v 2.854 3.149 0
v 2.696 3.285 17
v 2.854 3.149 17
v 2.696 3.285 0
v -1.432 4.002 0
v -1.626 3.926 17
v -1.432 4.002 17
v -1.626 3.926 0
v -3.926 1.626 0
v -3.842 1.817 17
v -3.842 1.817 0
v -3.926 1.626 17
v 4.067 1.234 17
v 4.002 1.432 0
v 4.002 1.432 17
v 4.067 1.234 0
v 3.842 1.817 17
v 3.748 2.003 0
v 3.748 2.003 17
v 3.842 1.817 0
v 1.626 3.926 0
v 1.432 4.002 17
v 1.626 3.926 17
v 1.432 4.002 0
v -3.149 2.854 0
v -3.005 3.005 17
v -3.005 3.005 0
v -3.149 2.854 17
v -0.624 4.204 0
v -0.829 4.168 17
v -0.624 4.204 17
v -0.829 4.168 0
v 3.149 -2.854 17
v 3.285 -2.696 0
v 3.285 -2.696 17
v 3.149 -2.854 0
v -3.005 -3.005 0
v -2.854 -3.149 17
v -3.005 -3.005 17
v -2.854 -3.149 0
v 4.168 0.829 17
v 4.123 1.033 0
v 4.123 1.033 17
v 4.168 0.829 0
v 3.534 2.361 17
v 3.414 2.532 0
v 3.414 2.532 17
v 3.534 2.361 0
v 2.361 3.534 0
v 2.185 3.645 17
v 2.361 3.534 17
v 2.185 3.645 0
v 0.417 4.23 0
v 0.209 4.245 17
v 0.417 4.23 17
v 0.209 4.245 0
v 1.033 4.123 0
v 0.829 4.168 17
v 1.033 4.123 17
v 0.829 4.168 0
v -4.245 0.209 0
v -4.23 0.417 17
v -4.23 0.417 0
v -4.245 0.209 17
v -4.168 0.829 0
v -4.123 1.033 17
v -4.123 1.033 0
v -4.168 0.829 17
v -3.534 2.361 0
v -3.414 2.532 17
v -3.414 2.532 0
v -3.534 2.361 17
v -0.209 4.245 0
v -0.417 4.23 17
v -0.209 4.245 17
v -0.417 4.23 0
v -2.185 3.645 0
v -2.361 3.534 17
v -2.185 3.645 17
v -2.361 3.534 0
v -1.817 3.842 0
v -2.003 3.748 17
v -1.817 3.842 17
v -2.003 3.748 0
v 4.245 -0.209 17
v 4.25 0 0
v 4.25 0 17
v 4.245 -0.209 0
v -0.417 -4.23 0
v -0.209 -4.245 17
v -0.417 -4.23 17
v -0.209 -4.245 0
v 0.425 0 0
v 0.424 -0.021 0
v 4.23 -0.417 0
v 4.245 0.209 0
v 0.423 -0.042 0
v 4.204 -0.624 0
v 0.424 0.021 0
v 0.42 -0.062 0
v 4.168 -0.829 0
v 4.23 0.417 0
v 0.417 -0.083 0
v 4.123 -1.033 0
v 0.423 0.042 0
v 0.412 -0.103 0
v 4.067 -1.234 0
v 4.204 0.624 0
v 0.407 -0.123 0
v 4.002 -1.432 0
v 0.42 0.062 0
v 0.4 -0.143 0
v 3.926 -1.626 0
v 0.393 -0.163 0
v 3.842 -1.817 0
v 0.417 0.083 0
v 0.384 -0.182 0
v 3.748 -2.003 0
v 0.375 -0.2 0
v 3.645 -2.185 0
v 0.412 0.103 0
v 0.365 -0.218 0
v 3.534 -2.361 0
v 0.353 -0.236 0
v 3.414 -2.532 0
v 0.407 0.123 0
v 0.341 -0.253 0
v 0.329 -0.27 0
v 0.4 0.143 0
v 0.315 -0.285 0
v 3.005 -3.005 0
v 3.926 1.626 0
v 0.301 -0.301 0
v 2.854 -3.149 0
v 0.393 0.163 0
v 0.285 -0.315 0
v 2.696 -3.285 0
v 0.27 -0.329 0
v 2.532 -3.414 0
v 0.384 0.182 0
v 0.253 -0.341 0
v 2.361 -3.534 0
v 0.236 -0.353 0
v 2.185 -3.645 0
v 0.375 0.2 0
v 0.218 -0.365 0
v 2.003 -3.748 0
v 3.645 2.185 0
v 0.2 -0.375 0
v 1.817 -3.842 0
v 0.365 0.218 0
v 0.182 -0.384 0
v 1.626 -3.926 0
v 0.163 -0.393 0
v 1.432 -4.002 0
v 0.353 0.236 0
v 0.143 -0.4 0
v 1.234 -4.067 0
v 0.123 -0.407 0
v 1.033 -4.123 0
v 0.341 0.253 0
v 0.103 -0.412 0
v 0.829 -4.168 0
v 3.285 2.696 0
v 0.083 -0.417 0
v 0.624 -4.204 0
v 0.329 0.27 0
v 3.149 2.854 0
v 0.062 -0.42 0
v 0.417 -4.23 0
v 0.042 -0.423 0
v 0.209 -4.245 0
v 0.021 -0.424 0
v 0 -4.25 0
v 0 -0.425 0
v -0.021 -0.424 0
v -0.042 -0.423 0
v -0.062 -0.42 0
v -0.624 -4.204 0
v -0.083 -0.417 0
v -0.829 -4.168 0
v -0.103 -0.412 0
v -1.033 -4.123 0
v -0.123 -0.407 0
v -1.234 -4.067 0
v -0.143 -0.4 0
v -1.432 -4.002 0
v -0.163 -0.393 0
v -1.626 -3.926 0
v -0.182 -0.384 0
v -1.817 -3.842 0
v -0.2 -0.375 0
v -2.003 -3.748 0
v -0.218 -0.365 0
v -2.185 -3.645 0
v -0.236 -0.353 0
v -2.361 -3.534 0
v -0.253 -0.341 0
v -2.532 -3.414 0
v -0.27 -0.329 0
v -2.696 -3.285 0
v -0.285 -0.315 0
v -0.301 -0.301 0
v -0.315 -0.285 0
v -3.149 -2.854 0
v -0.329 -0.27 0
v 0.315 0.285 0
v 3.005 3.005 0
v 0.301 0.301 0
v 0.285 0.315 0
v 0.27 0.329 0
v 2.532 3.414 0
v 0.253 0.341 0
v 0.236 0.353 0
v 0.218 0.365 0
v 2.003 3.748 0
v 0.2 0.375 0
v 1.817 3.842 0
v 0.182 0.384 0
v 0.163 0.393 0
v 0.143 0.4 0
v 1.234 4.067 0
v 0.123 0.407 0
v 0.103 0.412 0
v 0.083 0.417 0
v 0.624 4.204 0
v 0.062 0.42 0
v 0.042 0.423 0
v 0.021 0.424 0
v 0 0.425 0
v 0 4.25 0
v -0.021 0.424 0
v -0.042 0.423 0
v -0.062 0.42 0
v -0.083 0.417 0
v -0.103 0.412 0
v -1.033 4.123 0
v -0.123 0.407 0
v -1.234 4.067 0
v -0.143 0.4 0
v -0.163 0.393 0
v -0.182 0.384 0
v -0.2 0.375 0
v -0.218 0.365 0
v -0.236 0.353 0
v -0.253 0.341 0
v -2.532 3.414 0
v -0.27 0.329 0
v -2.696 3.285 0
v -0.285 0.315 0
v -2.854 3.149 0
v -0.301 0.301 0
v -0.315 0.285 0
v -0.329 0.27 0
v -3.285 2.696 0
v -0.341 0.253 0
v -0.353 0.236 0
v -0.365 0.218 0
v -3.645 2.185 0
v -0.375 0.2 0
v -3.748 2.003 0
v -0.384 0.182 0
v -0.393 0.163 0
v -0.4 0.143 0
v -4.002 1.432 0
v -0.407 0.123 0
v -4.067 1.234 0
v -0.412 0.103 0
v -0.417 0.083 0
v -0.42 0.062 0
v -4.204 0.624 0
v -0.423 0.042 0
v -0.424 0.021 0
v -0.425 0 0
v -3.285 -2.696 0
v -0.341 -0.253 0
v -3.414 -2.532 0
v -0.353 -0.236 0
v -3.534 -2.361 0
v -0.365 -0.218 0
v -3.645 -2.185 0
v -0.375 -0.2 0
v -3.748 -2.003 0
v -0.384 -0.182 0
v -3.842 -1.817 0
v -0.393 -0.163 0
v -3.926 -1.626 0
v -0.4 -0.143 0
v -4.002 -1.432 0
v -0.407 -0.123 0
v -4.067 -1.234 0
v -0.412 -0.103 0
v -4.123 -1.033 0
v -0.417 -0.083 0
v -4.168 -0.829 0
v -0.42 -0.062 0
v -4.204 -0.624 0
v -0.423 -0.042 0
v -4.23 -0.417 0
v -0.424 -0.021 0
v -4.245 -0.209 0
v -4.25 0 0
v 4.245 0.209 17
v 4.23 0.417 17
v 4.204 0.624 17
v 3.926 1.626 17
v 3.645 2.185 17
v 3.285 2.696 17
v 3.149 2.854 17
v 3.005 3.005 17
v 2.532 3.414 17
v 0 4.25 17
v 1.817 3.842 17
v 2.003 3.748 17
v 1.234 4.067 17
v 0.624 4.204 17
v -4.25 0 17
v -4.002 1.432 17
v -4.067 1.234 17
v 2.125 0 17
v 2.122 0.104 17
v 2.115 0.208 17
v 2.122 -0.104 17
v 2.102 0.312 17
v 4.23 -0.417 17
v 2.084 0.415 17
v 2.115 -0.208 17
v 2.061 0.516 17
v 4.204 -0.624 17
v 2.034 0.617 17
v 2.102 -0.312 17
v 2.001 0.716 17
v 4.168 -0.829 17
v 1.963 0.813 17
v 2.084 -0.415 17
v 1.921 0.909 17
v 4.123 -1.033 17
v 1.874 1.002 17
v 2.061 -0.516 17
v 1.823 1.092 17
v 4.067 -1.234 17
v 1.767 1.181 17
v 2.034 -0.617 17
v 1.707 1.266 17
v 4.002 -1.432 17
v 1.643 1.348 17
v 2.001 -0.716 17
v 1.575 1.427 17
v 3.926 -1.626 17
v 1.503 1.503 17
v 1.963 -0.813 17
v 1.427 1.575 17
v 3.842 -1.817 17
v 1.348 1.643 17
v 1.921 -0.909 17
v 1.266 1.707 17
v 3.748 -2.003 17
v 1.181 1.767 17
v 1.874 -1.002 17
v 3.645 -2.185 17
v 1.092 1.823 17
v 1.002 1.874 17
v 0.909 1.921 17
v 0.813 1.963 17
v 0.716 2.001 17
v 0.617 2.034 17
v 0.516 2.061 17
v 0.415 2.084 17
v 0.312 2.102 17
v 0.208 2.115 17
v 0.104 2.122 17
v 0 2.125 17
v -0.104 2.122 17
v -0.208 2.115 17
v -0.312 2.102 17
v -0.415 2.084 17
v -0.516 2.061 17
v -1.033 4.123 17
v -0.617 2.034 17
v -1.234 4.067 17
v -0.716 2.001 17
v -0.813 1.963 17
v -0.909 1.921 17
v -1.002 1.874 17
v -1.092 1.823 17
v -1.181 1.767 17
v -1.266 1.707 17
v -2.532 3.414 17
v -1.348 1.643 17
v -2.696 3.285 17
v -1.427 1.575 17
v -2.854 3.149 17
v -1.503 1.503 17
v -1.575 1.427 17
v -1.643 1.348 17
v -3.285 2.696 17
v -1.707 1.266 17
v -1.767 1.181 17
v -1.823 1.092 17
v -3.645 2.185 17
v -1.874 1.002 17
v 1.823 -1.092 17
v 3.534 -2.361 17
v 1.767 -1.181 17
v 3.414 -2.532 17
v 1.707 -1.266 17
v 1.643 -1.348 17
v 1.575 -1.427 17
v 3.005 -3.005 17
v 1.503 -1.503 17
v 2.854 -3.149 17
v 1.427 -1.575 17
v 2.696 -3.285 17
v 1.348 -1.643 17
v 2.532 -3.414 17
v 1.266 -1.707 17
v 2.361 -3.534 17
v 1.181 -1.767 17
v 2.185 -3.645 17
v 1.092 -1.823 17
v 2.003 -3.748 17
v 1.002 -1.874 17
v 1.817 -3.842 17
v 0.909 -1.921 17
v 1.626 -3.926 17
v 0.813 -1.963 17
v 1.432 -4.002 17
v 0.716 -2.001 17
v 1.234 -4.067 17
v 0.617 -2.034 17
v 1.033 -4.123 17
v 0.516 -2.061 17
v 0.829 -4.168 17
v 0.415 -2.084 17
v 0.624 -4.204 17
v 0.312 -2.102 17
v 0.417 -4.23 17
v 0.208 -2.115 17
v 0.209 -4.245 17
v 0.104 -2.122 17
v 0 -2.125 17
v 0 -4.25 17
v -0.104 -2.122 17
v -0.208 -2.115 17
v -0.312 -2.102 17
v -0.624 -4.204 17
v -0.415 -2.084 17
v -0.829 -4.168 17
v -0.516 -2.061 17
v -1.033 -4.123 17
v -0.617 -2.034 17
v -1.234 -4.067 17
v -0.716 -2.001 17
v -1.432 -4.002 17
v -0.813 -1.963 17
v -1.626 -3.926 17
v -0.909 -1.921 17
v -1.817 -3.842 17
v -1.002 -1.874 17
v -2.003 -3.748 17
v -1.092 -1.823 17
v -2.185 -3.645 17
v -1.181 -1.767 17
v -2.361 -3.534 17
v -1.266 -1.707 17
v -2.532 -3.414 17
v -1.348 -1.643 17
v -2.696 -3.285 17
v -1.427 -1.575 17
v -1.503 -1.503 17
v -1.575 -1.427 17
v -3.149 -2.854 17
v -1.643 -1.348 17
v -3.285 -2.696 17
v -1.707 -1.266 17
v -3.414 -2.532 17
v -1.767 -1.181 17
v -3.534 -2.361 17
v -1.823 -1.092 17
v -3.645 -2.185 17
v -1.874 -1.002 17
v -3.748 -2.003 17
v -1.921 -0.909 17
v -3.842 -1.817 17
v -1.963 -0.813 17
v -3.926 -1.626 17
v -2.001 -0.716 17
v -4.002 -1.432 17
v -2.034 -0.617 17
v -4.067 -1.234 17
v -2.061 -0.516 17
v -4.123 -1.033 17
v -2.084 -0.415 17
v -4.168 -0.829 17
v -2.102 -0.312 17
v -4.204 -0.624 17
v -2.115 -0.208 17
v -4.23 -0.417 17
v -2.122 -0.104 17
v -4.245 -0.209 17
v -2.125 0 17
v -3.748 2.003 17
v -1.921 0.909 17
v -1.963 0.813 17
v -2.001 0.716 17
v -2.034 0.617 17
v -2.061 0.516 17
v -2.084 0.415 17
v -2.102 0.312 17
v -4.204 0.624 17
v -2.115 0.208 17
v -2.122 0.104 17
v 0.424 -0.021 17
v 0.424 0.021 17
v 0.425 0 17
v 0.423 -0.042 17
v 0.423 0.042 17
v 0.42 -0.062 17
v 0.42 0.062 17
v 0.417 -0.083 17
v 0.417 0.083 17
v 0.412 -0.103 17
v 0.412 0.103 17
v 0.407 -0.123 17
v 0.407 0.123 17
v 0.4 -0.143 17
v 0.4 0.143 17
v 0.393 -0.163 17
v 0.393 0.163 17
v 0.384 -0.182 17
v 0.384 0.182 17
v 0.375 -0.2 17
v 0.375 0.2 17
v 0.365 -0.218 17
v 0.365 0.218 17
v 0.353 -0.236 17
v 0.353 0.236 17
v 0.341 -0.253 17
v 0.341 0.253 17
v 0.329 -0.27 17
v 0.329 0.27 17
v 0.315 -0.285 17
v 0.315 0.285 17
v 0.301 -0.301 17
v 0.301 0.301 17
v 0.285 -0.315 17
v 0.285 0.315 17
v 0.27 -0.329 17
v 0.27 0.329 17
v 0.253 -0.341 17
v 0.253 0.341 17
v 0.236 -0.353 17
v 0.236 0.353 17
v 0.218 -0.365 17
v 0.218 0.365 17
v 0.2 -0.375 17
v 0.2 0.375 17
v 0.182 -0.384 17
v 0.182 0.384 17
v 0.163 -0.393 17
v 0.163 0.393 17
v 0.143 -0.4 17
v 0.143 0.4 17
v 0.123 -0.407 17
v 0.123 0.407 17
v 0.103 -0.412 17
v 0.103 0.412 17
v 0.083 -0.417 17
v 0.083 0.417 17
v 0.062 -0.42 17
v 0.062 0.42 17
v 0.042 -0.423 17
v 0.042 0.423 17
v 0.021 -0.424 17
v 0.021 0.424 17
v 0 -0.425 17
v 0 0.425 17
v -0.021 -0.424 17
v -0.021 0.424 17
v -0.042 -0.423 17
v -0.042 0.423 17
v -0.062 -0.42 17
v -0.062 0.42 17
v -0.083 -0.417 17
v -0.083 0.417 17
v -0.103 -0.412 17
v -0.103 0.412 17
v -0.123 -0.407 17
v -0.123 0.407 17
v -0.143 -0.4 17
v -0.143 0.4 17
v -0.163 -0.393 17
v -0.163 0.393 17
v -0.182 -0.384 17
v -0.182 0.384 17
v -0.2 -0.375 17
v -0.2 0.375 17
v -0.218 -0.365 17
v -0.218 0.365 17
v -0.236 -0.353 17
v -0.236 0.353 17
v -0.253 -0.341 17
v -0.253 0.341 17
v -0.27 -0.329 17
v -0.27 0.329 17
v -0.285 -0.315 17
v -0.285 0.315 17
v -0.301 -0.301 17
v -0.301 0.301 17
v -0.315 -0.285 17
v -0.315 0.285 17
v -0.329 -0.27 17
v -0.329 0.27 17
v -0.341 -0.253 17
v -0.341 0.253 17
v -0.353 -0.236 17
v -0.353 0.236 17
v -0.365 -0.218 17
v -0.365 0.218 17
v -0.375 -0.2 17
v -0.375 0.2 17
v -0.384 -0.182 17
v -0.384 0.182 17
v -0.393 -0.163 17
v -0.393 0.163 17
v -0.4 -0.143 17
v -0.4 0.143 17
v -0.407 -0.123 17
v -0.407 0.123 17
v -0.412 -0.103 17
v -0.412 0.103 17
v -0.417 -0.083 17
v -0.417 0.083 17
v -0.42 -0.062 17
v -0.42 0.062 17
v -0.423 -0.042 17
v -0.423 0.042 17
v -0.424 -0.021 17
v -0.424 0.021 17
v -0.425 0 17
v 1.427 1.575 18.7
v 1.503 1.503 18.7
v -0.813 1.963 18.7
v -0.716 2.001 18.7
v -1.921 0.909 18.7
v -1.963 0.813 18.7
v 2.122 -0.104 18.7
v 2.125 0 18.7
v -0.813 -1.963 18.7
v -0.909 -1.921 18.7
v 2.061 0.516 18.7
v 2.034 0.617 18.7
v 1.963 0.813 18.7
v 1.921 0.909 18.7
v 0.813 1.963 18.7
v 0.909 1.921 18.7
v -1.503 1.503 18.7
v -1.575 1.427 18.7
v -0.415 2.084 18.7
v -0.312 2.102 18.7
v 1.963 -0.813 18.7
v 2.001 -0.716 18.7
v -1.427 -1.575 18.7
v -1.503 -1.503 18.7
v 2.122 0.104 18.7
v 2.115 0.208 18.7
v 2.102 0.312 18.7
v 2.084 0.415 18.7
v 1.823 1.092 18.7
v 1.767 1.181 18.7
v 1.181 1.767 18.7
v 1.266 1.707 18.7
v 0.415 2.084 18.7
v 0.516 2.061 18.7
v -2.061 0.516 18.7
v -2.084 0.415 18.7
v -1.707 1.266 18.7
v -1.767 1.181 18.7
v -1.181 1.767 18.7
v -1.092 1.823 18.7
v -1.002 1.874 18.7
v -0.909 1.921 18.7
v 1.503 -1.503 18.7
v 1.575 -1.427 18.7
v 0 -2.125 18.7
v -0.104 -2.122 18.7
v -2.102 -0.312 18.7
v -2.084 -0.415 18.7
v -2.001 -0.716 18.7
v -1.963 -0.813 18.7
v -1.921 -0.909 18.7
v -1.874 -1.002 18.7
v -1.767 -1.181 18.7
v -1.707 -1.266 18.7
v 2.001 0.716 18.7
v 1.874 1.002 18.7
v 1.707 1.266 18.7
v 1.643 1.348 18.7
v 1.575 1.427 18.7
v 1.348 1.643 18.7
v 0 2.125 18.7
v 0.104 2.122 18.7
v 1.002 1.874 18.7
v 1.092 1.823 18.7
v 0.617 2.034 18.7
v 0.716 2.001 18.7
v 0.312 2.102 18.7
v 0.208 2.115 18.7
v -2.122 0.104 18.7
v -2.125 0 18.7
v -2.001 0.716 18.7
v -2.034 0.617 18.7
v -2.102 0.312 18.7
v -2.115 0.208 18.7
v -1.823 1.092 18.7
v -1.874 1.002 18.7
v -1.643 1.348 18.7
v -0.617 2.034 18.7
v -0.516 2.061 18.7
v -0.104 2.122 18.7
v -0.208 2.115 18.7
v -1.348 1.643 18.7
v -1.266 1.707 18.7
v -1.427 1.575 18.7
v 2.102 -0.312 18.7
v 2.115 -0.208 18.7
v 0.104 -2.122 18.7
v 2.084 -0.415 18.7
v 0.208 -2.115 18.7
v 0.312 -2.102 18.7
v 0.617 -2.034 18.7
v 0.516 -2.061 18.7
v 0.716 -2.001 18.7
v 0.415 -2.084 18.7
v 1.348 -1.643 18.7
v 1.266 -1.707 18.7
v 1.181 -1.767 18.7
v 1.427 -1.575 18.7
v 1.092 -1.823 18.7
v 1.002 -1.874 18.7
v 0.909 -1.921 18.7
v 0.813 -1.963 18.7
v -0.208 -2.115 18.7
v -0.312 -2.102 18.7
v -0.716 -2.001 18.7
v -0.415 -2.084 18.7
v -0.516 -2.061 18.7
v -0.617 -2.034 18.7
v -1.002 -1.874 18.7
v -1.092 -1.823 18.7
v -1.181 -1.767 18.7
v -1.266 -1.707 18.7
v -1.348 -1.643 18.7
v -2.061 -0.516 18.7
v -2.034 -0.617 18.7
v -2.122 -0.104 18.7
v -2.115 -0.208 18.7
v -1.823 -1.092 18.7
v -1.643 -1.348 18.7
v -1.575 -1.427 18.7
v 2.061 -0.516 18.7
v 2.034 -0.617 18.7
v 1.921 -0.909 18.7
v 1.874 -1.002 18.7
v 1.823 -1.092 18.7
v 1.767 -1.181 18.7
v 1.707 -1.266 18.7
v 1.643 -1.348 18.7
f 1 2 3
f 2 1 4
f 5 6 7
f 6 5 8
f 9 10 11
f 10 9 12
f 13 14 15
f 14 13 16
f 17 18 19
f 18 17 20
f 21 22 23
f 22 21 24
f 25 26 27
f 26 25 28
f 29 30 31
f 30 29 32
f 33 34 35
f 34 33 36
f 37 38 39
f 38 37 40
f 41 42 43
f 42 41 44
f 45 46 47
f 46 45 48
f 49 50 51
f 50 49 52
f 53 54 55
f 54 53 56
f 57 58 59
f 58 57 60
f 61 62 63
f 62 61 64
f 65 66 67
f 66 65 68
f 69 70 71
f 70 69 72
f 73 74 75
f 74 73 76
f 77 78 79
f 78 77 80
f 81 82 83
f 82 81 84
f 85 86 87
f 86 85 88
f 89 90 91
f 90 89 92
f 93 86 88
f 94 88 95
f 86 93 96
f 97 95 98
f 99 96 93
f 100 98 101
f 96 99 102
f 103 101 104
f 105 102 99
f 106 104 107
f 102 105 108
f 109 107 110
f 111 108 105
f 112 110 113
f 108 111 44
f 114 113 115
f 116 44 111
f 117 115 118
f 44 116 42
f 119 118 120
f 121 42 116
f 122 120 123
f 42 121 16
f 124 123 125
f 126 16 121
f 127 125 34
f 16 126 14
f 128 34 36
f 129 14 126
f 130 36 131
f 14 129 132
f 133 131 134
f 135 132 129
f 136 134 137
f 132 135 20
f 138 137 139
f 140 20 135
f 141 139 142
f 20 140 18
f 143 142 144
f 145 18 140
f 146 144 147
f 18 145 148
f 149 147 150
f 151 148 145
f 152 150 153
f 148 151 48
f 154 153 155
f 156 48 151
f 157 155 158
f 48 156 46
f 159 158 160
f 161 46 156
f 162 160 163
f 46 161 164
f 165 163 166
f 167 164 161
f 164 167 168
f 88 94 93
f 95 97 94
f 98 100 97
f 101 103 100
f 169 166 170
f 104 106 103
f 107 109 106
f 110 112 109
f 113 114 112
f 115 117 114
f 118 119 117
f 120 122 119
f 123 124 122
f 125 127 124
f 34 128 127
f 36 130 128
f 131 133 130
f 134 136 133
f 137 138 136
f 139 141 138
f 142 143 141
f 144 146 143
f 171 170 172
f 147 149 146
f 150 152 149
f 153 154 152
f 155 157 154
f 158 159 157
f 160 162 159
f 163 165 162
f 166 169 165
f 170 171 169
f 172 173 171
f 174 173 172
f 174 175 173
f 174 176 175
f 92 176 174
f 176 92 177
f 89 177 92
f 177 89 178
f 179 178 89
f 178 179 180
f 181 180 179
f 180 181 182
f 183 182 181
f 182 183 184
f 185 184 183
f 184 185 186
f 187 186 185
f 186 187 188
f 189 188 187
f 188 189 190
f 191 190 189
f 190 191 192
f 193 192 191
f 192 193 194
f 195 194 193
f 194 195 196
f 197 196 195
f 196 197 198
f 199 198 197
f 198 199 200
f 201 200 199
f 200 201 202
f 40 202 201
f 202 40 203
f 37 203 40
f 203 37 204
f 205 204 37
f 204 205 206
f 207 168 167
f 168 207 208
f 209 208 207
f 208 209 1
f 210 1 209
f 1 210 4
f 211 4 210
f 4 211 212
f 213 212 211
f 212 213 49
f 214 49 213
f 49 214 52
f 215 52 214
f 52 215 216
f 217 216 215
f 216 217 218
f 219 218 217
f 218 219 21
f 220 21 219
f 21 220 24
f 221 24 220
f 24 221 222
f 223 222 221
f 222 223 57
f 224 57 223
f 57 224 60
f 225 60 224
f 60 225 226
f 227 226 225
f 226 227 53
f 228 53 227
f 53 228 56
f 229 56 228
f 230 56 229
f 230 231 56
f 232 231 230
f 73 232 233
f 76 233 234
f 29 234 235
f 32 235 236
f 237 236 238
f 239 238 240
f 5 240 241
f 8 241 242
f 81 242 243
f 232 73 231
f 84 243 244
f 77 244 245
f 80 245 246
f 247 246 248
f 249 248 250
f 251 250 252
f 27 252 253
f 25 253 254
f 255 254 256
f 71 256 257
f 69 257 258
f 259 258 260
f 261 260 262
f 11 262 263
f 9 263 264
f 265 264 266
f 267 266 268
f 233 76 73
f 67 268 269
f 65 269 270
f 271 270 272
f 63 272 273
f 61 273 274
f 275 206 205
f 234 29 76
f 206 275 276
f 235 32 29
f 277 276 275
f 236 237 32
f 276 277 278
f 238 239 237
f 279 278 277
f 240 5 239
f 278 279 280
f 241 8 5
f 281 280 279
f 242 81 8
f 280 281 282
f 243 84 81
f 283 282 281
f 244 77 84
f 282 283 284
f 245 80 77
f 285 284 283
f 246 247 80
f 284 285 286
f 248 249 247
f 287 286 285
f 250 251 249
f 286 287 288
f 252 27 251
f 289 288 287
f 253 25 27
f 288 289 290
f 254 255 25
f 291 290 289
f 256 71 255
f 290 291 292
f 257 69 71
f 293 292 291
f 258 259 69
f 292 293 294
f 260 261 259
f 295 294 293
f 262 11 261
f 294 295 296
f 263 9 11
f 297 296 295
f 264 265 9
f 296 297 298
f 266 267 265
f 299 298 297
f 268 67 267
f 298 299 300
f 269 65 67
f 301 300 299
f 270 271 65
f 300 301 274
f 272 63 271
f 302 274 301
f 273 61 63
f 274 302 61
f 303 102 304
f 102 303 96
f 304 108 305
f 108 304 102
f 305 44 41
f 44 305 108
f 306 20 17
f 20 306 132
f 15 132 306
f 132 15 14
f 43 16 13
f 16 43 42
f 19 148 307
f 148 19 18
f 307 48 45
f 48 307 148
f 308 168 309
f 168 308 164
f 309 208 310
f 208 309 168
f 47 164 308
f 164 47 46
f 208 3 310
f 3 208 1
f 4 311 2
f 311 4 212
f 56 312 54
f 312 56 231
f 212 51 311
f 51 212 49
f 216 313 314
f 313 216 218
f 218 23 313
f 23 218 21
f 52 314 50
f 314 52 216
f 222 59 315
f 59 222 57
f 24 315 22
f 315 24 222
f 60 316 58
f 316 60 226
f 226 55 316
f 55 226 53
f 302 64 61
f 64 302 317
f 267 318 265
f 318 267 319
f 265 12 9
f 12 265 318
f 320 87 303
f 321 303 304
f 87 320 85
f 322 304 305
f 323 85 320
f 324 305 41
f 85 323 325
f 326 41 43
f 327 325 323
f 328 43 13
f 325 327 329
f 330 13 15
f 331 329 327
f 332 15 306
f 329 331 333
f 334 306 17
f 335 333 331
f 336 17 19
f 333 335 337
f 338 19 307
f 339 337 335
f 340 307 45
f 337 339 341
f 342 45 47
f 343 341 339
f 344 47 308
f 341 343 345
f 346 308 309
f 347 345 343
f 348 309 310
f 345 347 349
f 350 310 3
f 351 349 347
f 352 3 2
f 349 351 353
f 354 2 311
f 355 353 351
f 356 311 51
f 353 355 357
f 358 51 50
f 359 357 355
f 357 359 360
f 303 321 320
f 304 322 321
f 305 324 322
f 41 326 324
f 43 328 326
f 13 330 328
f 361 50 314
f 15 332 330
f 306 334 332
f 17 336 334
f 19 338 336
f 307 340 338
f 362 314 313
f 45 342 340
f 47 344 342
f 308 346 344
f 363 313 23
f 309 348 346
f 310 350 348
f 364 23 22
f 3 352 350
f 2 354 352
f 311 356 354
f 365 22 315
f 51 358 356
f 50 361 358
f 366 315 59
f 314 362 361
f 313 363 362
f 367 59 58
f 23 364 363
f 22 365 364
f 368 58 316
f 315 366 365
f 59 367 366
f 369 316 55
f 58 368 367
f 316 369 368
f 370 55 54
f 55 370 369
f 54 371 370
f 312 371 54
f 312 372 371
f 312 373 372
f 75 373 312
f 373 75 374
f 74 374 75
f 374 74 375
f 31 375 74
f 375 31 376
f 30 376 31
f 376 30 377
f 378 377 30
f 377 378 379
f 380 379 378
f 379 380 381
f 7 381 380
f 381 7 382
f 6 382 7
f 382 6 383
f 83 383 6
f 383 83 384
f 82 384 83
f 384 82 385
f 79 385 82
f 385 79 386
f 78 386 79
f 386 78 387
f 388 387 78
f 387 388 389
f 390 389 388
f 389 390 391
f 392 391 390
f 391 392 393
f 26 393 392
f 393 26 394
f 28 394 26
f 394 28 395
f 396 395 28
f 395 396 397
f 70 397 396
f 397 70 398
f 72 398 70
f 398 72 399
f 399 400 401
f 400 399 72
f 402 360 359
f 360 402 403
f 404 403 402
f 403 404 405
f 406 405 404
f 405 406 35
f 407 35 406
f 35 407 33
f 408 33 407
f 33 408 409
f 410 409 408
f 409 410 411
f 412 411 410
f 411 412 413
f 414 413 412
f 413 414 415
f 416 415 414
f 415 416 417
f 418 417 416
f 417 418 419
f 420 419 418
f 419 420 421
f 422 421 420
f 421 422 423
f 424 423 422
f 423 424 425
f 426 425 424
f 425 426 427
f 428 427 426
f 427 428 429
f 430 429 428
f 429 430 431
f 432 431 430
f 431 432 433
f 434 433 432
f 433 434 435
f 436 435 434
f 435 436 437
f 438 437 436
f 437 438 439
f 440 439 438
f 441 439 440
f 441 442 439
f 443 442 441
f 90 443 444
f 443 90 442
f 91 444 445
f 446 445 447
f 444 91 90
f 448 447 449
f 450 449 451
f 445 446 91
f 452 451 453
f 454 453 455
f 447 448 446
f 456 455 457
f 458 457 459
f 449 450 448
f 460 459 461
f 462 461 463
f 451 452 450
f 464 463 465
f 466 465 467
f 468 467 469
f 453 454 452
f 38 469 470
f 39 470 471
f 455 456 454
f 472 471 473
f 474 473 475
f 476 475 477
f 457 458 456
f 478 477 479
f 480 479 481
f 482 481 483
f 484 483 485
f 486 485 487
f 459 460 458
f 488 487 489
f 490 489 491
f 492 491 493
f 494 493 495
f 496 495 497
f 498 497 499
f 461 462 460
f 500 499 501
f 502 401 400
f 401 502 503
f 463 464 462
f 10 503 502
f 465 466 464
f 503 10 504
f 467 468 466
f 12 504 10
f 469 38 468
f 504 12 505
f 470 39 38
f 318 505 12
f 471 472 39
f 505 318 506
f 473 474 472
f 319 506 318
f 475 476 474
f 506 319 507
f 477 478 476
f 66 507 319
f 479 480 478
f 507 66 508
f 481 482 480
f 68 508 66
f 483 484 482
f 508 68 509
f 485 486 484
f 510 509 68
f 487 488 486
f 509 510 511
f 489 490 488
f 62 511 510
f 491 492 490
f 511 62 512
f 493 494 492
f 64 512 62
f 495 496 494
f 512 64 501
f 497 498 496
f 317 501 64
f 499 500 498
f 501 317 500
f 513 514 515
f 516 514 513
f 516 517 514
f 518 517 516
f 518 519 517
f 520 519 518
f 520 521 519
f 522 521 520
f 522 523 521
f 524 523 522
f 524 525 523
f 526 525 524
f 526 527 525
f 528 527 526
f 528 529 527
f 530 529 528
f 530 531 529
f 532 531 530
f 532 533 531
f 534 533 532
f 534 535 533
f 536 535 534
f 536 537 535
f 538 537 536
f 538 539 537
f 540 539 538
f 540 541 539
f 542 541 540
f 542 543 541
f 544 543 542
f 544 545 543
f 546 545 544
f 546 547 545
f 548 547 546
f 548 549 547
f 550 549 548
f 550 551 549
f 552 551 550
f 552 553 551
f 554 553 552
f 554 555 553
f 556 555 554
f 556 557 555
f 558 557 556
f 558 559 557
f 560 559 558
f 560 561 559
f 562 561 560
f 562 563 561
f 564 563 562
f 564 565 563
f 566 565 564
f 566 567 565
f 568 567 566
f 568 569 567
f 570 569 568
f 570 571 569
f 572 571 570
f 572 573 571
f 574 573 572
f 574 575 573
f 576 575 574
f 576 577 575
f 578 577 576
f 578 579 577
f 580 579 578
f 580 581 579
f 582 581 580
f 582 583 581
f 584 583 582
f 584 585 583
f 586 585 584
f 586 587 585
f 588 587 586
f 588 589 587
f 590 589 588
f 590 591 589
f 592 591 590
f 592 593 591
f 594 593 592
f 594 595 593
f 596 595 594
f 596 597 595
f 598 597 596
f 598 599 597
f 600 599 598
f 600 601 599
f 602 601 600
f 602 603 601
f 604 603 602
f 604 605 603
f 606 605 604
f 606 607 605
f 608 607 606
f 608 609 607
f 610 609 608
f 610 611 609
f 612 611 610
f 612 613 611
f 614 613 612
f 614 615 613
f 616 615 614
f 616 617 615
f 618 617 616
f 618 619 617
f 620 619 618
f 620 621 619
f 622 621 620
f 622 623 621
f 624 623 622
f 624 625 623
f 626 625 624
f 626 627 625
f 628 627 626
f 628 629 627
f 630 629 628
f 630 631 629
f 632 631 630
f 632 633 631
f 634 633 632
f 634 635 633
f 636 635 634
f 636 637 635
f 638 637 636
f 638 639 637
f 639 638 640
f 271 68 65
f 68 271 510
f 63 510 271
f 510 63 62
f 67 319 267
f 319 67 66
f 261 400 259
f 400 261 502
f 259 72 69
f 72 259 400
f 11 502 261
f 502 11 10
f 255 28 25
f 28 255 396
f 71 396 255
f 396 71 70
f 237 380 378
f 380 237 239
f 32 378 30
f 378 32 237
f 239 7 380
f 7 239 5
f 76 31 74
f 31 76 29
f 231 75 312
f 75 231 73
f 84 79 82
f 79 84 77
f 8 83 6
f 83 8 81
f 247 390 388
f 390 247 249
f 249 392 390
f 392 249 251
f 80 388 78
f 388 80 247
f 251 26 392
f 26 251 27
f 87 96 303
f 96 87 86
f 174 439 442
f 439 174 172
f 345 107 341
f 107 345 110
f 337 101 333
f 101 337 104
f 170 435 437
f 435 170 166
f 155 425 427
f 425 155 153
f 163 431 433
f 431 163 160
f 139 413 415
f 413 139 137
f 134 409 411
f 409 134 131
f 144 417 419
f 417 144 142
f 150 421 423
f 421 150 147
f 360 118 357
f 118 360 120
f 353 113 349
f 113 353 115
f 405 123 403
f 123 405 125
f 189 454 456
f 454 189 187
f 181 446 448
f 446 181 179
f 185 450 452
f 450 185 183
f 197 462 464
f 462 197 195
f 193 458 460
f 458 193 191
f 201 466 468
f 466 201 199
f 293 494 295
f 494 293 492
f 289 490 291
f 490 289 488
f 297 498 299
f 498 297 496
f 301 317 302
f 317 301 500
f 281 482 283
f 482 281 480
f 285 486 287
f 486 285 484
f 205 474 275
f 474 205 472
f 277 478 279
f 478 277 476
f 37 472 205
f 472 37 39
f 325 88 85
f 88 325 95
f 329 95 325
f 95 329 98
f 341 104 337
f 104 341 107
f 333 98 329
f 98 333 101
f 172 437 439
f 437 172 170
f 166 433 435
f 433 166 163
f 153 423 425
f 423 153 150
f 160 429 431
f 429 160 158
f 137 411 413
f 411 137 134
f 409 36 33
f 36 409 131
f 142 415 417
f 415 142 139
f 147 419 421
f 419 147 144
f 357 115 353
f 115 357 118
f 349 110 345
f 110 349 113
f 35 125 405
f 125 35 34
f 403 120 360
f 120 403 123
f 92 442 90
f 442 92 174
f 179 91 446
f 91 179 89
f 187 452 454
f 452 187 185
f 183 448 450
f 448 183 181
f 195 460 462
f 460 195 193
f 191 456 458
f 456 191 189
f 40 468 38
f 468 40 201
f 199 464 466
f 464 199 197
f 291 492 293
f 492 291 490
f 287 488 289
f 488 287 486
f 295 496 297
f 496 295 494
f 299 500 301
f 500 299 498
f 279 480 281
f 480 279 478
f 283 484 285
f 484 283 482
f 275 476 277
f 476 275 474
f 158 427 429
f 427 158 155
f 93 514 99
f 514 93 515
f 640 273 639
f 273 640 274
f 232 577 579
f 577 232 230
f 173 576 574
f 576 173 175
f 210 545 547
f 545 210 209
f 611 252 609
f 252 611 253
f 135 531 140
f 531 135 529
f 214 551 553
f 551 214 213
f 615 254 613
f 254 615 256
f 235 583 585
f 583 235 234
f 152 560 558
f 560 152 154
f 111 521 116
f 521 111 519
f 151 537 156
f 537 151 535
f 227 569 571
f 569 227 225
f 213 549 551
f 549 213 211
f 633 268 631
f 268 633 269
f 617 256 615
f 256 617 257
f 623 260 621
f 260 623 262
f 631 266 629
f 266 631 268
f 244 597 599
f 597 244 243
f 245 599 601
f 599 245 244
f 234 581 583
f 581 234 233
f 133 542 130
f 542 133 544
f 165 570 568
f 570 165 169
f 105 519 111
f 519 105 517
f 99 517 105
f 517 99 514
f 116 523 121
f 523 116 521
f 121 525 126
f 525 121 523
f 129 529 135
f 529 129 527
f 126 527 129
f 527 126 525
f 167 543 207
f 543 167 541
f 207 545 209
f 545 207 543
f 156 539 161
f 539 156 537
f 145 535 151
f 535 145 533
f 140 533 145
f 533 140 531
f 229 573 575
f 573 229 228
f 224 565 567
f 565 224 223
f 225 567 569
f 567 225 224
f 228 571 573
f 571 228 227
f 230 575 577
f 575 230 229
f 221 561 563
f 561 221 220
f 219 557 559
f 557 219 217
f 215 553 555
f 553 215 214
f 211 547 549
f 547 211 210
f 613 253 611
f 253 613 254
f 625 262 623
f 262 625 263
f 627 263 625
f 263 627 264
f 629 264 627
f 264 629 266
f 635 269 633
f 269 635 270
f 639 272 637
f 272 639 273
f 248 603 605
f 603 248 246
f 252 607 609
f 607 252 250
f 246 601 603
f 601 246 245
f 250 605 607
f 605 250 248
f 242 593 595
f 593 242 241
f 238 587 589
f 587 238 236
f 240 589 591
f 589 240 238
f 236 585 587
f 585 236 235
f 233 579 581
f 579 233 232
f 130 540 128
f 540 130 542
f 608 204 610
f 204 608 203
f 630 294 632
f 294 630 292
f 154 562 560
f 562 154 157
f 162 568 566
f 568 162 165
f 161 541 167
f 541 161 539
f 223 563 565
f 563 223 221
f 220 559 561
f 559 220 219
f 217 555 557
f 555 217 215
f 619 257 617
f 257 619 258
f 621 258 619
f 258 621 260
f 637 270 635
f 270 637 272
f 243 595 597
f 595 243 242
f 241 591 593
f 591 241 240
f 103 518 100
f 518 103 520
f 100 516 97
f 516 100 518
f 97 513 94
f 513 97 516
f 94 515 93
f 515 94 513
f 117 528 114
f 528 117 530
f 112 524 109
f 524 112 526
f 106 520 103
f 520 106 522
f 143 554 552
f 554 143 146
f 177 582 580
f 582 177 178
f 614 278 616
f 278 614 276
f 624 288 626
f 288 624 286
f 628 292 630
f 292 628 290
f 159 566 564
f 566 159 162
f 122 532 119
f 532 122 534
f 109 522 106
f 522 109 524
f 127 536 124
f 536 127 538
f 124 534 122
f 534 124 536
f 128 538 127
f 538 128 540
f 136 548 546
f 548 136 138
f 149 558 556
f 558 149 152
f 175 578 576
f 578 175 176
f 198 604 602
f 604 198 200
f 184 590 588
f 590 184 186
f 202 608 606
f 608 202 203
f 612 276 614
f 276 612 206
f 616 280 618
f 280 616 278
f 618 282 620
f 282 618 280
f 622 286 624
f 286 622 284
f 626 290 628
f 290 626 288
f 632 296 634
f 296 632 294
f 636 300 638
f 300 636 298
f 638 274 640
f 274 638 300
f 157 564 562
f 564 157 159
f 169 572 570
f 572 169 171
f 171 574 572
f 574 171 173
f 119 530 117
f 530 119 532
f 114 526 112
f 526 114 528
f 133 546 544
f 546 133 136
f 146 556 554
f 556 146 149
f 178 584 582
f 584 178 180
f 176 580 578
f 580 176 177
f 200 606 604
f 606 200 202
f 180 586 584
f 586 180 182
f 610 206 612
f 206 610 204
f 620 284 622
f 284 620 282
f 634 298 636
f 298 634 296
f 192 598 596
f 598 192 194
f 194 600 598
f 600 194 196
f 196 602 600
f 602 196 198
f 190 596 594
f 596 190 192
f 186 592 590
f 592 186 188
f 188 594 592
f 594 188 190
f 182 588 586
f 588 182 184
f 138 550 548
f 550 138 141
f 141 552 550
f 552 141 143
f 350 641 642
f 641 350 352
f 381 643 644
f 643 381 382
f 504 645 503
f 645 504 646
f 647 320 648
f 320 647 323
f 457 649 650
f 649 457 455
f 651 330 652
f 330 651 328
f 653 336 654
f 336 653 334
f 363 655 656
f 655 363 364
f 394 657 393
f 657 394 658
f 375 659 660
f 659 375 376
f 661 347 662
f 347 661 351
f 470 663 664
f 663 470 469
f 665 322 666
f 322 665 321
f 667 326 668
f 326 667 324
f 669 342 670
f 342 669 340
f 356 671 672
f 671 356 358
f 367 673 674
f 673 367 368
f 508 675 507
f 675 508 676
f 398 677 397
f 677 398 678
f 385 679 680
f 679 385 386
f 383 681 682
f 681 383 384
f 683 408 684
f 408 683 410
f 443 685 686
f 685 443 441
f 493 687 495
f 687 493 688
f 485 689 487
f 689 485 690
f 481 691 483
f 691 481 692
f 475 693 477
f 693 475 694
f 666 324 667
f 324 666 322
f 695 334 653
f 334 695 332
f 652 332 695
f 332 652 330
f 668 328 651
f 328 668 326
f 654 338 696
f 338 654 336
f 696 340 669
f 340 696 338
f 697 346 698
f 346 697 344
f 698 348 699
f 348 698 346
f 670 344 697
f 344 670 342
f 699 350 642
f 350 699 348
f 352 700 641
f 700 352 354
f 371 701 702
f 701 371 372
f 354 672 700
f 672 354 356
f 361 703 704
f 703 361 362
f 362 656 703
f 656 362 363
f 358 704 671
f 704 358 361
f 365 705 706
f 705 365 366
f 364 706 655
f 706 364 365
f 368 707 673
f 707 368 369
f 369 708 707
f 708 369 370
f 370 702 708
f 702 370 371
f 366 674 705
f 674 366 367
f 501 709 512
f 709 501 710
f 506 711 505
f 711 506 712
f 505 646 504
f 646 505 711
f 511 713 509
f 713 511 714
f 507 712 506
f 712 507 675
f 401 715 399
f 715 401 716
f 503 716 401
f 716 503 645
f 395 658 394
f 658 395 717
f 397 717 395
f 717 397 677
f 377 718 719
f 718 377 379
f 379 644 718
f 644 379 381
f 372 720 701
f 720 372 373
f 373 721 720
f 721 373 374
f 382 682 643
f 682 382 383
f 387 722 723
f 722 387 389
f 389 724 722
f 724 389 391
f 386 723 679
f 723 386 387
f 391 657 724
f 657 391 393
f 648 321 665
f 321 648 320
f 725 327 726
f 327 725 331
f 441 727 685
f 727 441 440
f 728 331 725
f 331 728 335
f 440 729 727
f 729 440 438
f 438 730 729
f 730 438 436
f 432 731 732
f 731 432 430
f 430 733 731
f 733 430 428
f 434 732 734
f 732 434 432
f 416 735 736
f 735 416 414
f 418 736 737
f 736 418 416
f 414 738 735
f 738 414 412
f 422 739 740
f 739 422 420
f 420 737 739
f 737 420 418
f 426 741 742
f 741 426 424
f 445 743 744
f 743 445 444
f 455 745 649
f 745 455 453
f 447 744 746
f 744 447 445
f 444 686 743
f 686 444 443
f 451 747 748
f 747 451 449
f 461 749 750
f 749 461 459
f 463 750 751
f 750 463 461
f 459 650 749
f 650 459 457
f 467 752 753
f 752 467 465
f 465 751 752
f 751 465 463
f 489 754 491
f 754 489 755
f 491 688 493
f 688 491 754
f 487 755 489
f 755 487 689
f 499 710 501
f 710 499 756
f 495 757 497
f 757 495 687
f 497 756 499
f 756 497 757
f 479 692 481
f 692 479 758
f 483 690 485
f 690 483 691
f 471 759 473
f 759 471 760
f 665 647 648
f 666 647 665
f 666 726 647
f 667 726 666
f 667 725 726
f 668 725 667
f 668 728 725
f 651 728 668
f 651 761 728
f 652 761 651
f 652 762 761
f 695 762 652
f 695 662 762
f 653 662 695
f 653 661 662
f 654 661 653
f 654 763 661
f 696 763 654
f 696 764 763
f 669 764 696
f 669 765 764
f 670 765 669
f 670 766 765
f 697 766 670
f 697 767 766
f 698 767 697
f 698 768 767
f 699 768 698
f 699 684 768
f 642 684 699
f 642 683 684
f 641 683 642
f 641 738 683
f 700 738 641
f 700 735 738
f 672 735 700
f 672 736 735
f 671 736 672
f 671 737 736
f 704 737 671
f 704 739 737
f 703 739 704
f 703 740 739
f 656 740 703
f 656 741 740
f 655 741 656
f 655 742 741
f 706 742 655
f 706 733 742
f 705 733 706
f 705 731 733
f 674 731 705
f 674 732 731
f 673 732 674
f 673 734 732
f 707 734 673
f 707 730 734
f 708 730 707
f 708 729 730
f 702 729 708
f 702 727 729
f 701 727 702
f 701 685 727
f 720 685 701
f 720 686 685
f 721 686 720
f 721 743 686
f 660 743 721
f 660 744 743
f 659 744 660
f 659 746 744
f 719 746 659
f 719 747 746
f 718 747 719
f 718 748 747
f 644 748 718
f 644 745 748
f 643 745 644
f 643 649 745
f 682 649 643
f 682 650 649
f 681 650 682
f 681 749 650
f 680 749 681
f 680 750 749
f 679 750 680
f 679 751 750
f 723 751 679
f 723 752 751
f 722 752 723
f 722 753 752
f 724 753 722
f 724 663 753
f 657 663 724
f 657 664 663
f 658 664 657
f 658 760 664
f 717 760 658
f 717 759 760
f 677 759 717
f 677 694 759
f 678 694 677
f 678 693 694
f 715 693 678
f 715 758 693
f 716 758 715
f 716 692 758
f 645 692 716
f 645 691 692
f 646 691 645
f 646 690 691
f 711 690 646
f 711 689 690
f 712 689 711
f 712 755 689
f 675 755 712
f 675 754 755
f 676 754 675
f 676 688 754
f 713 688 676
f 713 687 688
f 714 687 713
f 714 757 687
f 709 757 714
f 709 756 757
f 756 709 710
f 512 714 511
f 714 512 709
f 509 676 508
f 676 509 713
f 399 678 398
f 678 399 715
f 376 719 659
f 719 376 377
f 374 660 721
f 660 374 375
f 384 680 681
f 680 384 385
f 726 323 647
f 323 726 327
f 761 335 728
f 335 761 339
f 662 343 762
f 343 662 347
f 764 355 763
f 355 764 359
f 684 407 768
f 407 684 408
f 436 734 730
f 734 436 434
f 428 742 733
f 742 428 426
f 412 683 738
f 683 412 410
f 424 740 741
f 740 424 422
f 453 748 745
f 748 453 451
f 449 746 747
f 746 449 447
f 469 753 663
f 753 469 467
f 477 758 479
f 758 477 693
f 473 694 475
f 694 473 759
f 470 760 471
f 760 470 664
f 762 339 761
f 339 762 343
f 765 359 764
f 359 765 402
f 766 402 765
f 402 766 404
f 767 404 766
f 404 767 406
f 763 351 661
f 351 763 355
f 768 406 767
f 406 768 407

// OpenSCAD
// Generated by SolidPython 1.1.3 on 2023-04-08 02:27:49
$fn =128;


union() {
	difference() {
		cylinder(h = 17, r = 4.2500000000);
		cylinder(h = 17, r = 0.4250000000);
	}
	translate(v = [0, 0, 17]) {
		cylinder(h = 1.7000000000, r = 2.1250000000);
	}
}
